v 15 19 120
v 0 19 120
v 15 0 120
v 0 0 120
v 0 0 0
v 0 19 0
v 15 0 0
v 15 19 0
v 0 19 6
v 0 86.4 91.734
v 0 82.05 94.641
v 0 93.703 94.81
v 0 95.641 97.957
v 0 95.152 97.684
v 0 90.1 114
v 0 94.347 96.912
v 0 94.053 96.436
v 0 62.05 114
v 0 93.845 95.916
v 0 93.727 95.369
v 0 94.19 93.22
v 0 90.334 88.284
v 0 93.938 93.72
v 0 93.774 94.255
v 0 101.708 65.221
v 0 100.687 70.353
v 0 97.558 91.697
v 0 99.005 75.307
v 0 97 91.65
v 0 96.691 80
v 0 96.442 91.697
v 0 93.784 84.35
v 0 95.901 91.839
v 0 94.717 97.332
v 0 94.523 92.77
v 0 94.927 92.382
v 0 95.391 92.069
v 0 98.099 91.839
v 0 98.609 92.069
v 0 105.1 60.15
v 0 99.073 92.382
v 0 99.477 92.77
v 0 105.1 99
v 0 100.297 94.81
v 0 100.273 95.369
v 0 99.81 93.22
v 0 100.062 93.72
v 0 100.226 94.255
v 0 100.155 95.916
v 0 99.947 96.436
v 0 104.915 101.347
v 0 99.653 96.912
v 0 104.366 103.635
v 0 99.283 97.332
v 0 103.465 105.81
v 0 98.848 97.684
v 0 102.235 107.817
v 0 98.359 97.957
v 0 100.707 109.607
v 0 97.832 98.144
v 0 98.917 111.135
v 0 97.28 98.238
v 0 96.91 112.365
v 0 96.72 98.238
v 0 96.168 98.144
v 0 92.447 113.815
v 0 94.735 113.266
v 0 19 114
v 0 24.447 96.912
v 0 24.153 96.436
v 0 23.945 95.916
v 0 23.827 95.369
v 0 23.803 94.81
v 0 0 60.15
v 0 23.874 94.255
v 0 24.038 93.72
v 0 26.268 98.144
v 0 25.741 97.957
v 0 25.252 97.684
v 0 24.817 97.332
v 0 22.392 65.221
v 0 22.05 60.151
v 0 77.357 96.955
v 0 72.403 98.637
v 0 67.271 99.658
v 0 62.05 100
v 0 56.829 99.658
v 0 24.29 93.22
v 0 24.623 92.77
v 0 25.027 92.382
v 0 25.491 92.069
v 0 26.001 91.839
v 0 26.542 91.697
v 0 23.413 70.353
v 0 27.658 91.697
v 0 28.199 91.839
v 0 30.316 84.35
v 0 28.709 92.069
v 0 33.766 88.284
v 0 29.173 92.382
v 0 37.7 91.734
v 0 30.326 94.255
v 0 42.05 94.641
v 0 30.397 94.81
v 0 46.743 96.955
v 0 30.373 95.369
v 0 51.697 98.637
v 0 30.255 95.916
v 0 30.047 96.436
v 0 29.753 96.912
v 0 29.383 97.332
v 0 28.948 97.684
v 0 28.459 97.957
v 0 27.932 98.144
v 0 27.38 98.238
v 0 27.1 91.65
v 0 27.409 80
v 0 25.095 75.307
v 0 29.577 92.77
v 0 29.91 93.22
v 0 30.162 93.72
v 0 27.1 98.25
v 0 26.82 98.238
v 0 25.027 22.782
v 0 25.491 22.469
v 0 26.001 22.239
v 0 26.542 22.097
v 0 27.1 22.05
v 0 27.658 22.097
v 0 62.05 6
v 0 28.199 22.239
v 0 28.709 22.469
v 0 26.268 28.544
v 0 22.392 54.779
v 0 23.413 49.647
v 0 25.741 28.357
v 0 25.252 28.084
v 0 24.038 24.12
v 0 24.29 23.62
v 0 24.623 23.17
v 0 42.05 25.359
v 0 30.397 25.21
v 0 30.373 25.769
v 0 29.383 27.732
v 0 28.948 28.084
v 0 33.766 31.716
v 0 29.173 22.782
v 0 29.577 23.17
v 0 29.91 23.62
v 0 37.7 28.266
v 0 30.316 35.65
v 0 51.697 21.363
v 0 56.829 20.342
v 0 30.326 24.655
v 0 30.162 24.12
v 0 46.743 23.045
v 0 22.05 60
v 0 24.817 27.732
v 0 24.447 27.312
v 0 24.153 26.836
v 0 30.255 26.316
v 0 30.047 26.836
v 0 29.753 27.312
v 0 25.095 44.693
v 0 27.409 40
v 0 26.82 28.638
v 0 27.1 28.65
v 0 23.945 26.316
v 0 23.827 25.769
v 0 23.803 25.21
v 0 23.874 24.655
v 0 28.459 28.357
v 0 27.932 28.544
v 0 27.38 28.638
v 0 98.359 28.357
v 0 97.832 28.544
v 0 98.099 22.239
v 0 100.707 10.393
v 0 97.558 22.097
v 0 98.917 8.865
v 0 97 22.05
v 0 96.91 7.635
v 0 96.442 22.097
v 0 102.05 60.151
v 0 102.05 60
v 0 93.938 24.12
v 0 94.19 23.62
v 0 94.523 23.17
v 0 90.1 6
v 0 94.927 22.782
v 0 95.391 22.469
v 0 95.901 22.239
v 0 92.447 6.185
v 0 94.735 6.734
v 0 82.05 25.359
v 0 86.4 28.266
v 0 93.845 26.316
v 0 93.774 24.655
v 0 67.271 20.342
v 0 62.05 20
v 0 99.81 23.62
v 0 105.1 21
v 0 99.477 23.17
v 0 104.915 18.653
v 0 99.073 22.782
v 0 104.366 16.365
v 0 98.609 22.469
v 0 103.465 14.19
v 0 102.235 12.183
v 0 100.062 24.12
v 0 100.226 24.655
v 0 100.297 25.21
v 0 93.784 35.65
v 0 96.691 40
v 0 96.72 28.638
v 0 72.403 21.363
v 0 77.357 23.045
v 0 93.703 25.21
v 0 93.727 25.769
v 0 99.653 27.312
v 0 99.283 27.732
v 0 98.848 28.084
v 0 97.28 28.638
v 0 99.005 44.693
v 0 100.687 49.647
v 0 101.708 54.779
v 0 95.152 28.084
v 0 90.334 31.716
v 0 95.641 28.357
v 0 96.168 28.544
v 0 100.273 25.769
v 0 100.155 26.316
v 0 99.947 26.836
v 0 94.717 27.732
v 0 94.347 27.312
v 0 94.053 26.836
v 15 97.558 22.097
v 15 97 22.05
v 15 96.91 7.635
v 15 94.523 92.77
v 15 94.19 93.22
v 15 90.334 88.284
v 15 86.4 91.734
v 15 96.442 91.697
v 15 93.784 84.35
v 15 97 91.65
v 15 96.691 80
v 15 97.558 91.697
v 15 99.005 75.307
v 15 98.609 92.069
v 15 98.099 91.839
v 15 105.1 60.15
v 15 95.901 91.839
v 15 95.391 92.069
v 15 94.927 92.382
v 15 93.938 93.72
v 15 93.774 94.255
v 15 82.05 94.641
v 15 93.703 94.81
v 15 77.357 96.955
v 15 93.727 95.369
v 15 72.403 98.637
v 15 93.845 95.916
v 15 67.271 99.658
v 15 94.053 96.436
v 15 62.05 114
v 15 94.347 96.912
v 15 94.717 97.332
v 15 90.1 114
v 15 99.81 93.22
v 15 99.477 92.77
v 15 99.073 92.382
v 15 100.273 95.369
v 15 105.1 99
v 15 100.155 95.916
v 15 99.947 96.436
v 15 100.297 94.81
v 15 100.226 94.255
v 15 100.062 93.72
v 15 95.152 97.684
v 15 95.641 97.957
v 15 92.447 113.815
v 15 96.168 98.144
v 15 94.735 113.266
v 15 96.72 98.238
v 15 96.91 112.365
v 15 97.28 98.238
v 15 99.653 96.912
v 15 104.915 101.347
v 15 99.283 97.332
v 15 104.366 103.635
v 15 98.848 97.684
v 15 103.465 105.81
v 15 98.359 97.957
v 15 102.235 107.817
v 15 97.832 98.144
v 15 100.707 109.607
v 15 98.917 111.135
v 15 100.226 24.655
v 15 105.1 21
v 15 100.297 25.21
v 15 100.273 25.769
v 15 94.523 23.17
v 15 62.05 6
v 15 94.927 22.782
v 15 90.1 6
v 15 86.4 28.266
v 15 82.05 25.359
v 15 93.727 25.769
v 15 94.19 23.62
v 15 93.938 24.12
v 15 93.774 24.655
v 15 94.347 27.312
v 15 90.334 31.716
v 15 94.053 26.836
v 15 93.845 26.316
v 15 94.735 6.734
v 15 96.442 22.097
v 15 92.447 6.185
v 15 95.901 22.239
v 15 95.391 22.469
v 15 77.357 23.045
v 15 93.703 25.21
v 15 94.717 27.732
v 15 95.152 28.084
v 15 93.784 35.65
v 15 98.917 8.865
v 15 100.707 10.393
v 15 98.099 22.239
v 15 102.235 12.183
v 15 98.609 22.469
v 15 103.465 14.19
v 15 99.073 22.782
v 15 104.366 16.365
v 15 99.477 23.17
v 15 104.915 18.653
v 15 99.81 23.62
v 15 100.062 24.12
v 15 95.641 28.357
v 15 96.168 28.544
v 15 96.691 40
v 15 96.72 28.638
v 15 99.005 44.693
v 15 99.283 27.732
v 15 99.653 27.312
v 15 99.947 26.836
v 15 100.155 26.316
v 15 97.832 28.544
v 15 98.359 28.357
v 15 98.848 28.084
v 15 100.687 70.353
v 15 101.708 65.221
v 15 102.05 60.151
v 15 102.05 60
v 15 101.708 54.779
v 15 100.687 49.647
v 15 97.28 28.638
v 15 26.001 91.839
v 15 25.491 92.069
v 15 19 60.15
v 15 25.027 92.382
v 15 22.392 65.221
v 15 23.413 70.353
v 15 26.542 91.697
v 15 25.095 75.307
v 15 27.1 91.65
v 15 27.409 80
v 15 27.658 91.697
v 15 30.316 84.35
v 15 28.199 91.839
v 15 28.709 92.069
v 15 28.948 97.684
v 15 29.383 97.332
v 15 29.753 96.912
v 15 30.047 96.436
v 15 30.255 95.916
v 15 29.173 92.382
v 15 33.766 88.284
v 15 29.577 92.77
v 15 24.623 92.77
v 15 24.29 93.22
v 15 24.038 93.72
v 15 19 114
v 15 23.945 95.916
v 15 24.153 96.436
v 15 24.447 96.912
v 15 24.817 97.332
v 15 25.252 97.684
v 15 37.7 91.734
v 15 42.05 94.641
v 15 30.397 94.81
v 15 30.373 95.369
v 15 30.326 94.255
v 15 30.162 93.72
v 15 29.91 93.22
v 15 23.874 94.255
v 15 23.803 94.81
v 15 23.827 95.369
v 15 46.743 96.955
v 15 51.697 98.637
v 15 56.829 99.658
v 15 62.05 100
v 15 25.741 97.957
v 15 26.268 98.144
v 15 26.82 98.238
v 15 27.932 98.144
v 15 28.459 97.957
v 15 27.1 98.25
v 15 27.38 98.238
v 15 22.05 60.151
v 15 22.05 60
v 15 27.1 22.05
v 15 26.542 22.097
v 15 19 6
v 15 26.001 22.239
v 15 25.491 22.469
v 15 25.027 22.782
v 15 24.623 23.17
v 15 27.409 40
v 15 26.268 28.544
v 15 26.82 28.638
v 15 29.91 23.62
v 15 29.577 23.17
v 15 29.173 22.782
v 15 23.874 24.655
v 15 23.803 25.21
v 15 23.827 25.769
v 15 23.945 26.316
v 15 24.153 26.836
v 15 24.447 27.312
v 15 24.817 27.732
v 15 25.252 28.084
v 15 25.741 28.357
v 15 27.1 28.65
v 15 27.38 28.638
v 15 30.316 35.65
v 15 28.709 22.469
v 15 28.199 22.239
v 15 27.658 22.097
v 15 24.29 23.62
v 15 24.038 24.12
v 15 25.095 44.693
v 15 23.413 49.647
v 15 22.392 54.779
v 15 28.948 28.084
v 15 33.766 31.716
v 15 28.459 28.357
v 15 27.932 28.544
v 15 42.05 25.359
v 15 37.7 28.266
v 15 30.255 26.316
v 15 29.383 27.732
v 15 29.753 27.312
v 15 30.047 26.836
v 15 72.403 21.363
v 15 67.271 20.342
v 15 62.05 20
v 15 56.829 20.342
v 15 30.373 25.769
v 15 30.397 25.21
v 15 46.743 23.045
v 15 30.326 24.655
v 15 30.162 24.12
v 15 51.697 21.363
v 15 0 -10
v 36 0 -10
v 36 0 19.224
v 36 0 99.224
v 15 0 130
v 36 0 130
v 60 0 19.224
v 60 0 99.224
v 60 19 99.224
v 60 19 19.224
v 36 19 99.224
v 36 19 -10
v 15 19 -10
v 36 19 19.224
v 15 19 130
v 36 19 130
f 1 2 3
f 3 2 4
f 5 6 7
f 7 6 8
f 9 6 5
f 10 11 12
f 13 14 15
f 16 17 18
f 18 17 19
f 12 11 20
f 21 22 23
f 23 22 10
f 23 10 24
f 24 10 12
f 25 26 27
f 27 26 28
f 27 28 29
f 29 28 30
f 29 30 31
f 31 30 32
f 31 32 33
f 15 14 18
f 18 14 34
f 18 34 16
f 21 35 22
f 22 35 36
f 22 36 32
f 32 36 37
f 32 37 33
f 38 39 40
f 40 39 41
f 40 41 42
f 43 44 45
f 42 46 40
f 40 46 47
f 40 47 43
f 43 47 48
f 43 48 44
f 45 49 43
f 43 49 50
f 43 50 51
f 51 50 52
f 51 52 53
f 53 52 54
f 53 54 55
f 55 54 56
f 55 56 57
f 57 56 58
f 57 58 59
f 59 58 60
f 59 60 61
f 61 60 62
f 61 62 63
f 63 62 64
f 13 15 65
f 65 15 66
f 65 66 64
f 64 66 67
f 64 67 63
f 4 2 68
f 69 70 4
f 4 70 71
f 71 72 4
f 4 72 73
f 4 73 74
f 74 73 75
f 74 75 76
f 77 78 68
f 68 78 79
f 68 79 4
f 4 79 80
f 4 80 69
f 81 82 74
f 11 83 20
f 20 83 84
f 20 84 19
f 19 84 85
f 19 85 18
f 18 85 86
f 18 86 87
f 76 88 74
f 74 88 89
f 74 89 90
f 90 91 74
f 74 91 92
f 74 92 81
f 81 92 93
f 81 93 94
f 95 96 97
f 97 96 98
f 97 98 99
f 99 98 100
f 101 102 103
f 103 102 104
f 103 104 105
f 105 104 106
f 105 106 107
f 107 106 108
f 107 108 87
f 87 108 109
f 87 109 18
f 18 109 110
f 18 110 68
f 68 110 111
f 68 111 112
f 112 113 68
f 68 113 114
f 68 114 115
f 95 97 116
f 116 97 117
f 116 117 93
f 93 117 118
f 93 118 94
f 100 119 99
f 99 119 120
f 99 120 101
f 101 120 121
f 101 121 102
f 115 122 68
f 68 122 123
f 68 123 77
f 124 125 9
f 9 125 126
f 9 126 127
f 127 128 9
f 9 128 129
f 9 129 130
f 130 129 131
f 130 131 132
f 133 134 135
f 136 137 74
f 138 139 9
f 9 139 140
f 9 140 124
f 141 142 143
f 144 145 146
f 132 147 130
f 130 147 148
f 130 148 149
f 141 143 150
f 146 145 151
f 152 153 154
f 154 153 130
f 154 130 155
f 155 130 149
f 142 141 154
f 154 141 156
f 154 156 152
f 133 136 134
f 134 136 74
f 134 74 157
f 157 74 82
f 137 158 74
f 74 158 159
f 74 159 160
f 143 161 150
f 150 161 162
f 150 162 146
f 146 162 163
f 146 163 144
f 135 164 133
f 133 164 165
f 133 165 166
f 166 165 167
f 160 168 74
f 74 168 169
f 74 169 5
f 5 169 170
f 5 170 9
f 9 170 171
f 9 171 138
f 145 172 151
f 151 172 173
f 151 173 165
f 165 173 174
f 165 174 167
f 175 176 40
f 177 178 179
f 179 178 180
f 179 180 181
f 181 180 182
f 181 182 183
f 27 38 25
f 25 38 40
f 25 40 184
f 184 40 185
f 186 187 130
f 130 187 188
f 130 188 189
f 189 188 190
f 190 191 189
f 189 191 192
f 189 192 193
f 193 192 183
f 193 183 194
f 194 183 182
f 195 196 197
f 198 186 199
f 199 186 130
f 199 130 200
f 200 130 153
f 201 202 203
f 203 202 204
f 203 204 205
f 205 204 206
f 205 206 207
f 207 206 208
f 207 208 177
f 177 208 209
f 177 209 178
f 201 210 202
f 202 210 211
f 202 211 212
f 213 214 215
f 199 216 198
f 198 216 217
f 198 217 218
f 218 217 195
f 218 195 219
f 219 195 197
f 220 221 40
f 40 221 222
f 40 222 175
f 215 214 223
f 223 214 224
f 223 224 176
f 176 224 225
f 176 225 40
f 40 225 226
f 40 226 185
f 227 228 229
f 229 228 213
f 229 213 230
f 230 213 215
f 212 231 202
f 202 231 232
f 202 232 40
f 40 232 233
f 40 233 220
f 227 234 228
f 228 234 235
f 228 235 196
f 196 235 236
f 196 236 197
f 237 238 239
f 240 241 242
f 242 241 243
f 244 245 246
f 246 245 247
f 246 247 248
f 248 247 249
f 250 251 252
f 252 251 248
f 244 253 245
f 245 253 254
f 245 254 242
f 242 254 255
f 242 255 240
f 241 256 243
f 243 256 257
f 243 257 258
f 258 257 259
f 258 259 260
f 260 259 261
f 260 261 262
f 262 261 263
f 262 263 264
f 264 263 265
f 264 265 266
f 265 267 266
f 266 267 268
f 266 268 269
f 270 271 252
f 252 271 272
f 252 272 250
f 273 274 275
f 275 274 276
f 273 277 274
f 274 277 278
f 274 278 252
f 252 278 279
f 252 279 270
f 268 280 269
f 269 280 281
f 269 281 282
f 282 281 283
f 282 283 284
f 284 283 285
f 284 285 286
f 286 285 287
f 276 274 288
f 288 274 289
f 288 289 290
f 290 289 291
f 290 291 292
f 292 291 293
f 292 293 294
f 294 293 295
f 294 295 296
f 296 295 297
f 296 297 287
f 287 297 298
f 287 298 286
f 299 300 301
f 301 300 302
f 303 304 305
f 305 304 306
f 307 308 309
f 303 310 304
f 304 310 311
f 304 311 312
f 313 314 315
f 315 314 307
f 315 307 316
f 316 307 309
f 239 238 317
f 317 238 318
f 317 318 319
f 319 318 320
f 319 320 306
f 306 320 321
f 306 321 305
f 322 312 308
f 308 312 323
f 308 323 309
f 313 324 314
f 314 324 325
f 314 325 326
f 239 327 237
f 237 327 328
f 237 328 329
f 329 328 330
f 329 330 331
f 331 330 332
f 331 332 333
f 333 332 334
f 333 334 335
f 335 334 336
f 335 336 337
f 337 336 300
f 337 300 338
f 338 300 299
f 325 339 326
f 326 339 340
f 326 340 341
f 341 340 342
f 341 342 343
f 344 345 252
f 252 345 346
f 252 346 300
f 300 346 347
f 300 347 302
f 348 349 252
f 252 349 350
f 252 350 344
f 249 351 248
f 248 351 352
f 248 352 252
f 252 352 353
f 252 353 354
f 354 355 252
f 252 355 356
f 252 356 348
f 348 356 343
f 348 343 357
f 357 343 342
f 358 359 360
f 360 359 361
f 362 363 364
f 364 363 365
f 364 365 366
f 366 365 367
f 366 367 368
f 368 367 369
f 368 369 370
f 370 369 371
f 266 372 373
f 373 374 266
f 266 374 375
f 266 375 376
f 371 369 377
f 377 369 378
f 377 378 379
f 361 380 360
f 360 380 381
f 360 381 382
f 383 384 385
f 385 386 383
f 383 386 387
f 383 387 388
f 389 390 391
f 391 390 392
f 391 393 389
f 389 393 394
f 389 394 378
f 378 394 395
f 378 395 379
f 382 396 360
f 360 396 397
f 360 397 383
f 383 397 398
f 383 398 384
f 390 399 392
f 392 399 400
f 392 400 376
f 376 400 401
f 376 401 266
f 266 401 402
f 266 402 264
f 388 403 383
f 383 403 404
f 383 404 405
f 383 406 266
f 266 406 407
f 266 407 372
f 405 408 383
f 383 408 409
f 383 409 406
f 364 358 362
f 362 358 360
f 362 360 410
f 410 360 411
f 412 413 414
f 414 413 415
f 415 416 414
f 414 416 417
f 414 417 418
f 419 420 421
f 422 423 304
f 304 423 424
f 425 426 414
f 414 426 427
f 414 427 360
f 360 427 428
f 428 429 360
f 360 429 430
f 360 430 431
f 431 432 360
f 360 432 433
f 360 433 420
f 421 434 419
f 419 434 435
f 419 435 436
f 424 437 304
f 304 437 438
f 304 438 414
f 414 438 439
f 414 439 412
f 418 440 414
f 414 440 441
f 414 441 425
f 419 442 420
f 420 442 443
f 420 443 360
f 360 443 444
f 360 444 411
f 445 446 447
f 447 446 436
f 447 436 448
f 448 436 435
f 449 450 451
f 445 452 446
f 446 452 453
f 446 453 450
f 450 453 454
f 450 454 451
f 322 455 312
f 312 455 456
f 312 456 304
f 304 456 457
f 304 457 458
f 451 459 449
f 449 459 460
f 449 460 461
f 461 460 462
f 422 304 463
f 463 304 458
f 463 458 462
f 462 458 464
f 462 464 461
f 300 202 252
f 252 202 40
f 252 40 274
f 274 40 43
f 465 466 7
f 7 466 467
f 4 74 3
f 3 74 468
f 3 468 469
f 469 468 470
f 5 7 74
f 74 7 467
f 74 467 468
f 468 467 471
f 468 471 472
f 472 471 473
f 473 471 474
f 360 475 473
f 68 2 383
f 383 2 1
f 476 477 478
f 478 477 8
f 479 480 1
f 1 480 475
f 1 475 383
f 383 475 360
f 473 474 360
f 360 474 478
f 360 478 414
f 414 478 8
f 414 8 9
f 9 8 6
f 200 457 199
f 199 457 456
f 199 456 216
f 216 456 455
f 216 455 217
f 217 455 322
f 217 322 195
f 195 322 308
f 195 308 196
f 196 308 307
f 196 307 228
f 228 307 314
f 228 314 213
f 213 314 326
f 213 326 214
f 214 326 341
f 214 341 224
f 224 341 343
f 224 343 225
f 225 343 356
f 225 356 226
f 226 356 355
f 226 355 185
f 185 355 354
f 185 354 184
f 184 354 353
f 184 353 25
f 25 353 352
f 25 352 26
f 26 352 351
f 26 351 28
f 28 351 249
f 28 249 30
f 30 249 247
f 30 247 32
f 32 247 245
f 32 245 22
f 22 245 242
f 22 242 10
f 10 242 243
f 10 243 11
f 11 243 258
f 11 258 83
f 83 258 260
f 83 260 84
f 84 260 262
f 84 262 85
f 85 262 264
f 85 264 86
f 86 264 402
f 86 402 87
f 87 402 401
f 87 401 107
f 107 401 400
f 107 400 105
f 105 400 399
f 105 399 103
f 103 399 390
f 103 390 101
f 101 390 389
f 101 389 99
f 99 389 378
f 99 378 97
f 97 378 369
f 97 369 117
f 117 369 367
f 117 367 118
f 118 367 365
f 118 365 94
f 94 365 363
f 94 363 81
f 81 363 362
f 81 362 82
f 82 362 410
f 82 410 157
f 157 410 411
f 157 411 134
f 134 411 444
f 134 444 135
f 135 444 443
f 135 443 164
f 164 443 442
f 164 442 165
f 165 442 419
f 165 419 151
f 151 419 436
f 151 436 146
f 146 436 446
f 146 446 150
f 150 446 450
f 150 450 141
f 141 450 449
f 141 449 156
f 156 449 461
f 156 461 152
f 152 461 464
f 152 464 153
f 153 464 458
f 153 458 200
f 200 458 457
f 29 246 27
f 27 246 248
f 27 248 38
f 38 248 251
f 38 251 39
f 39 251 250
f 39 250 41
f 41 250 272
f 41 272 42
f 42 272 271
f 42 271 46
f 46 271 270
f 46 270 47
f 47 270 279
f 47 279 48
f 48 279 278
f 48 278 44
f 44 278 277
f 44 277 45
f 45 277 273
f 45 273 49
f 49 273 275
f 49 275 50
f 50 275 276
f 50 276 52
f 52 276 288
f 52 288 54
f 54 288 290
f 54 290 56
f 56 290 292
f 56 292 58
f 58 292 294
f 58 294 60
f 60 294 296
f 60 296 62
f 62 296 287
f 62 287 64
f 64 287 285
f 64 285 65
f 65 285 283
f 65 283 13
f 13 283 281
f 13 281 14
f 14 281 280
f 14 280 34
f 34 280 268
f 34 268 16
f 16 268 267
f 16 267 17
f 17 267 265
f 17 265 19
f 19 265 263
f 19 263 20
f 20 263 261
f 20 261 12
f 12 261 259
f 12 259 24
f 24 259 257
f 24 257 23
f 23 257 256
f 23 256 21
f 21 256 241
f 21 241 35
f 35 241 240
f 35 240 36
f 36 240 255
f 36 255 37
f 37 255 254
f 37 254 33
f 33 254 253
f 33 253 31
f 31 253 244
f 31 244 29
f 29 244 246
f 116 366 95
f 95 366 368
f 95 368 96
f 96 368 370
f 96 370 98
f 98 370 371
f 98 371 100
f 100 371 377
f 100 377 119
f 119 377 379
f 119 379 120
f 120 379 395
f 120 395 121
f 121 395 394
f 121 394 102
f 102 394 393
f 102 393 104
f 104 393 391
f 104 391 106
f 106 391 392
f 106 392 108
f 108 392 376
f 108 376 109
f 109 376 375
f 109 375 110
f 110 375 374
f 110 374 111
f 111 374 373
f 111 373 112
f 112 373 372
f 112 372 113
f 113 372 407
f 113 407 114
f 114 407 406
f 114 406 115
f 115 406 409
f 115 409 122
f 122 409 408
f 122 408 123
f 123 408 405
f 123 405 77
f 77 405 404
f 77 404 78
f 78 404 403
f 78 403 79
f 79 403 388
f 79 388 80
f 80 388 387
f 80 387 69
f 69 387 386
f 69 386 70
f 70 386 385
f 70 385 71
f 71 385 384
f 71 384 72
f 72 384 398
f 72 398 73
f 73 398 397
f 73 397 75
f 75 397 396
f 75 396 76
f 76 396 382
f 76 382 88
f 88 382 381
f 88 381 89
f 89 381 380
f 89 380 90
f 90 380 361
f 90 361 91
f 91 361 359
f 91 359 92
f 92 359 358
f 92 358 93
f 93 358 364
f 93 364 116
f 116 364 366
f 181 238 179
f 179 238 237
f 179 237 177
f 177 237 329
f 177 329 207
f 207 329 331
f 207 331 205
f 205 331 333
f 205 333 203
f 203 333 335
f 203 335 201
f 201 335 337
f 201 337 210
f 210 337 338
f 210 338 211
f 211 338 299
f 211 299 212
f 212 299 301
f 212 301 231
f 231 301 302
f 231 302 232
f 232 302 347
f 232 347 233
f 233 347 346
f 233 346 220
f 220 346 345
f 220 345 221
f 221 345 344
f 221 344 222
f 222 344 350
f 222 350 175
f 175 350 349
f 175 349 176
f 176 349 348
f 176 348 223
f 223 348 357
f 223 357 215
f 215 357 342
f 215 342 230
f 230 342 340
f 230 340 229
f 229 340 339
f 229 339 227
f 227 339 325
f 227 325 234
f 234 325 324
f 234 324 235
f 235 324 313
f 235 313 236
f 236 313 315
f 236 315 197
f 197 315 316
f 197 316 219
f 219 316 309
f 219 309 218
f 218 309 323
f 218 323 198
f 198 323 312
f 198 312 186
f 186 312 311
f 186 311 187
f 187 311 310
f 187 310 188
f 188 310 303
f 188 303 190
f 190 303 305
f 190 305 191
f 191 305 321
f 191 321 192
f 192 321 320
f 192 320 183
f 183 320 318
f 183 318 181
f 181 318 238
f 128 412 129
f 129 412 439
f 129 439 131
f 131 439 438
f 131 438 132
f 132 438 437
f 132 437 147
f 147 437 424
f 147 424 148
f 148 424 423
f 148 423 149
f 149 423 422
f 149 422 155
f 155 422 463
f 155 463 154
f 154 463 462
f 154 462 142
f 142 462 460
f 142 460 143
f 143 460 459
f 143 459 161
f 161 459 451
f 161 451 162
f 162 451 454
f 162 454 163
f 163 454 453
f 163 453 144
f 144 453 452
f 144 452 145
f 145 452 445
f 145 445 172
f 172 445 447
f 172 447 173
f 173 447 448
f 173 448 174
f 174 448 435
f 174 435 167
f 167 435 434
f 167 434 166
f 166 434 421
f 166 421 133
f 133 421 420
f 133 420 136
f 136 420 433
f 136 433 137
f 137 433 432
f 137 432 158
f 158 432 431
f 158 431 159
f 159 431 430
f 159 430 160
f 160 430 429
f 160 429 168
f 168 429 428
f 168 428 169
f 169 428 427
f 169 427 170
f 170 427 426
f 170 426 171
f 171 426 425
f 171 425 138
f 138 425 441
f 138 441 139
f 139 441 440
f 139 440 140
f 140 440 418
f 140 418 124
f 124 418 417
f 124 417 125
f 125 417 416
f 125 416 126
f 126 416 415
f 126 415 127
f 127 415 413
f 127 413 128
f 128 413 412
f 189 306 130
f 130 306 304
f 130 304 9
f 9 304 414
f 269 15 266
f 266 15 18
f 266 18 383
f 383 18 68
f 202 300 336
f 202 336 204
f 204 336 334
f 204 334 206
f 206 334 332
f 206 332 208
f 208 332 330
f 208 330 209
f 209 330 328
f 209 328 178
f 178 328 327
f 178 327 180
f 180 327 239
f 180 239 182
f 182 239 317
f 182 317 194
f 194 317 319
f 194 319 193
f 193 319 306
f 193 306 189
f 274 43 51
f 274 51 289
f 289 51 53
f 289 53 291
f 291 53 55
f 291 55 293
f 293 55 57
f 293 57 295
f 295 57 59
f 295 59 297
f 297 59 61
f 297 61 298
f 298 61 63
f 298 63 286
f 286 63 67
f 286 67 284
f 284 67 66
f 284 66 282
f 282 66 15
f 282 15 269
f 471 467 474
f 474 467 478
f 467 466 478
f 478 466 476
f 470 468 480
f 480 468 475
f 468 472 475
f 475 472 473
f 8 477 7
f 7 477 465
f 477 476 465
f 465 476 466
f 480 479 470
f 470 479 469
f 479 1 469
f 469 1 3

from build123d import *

# Parameters (mm, degrees)
BOSS_EXTRUDE1_DEPTH = 120
SKETCH2_R           = 40
SKETCH2_R_2         = 3.3
CUT_EXTRUDE1_DEPTH  = 166.743808331
SKETCH3_W           = 15
SKETCH3_H           = 6
CUT_EXTRUDE4_DEPTH  = 86.1
FILLET1_R           = 15
SKETCH4_W           = 24
SKETCH4_H           = 20.775598272
SKETCH4_H_2         = 19.224401728
CUT_EXTRUDE5_DEPTH  = 160.415212574
SKETCH6_W           = 21
SKETCH6_H           = 10
BOSS_EXTRUDE2_DEPTH = 19


with BuildPart() as part:
    # Sketch1 → Boss-Extrude1 (new body)
    with BuildSketch(Plane.XY):
        Polygon((0, 0), (60, 0), (60, 19), (15, 19), (15, 105.1), (0, 105.1), align=None)
    extrude(amount=BOSS_EXTRUDE1_DEPTH)

    # Sketch2 → Cut-Extrude1 (cut, through all)
    with BuildSketch(Plane(origin=(15, 0, 0), x_dir=(0, 0, -1), z_dir=(1, 0, 0))):
        with Locations((-60, 62.05)):
            Circle(SKETCH2_R)
        with Locations((-94.95, 97)):
            Circle(SKETCH2_R_2)
        with Locations((-25.35, 97)):
            Circle(SKETCH2_R_2)
        with Locations(Location((-94.95, 27.1, 0), (0, 0, 180))):
            Circle(SKETCH2_R_2)
        with Locations(Location((-25.35, 27.1, 0), (0, 0, 180))):
            Circle(SKETCH2_R_2)
    extrude(amount=-CUT_EXTRUDE1_DEPTH, mode=Mode.SUBTRACT)

    # Sketch3 → Cut-Extrude4 (cut)
    with BuildSketch(Plane(origin=(0, 19, 0), x_dir=(1, 0, 0), z_dir=(0, 1, 0))):
        with Locations((7.5, -3)):
            Rectangle(SKETCH3_W, SKETCH3_H)
        with Locations((7.5, -117)):
            Rectangle(SKETCH3_W, SKETCH3_H)
    extrude(amount=CUT_EXTRUDE4_DEPTH, mode=Mode.SUBTRACT)

    # Fillet1
    fillet1_edges = [part.edges().sort_by_distance(p)[0] for p in [
        (7.5, 105.1, 6),
        (7.5, 105.1, 114),
    ]]
    fillet(fillet1_edges, radius=FILLET1_R)

    # Sketch4 → Cut-Extrude5 (cut, through all)
    with BuildSketch(Plane(origin=(0, 19, 0), x_dir=(1, 0, 0), z_dir=(0, 1, 0))):
        with Locations((48, -109.612200864)):
            Rectangle(SKETCH4_W, SKETCH4_H)
        with Locations((48, -9.612200864)):
            Rectangle(SKETCH4_W, SKETCH4_H_2)
    extrude(amount=-CUT_EXTRUDE5_DEPTH, mode=Mode.SUBTRACT)

    # Sketch6 → Boss-Extrude2 (add)
    with BuildSketch(Plane(origin=(0, 19, 0), x_dir=(1, 0, 0), z_dir=(0, 1, 0))):
        with Locations((25.5, 5)):
            Rectangle(SKETCH6_W, SKETCH6_H)
        with Locations((25.5, -125)):
            Rectangle(SKETCH6_W, SKETCH6_H)
    extrude(amount=-BOSS_EXTRUDE2_DEPTH)


solid = part.part
